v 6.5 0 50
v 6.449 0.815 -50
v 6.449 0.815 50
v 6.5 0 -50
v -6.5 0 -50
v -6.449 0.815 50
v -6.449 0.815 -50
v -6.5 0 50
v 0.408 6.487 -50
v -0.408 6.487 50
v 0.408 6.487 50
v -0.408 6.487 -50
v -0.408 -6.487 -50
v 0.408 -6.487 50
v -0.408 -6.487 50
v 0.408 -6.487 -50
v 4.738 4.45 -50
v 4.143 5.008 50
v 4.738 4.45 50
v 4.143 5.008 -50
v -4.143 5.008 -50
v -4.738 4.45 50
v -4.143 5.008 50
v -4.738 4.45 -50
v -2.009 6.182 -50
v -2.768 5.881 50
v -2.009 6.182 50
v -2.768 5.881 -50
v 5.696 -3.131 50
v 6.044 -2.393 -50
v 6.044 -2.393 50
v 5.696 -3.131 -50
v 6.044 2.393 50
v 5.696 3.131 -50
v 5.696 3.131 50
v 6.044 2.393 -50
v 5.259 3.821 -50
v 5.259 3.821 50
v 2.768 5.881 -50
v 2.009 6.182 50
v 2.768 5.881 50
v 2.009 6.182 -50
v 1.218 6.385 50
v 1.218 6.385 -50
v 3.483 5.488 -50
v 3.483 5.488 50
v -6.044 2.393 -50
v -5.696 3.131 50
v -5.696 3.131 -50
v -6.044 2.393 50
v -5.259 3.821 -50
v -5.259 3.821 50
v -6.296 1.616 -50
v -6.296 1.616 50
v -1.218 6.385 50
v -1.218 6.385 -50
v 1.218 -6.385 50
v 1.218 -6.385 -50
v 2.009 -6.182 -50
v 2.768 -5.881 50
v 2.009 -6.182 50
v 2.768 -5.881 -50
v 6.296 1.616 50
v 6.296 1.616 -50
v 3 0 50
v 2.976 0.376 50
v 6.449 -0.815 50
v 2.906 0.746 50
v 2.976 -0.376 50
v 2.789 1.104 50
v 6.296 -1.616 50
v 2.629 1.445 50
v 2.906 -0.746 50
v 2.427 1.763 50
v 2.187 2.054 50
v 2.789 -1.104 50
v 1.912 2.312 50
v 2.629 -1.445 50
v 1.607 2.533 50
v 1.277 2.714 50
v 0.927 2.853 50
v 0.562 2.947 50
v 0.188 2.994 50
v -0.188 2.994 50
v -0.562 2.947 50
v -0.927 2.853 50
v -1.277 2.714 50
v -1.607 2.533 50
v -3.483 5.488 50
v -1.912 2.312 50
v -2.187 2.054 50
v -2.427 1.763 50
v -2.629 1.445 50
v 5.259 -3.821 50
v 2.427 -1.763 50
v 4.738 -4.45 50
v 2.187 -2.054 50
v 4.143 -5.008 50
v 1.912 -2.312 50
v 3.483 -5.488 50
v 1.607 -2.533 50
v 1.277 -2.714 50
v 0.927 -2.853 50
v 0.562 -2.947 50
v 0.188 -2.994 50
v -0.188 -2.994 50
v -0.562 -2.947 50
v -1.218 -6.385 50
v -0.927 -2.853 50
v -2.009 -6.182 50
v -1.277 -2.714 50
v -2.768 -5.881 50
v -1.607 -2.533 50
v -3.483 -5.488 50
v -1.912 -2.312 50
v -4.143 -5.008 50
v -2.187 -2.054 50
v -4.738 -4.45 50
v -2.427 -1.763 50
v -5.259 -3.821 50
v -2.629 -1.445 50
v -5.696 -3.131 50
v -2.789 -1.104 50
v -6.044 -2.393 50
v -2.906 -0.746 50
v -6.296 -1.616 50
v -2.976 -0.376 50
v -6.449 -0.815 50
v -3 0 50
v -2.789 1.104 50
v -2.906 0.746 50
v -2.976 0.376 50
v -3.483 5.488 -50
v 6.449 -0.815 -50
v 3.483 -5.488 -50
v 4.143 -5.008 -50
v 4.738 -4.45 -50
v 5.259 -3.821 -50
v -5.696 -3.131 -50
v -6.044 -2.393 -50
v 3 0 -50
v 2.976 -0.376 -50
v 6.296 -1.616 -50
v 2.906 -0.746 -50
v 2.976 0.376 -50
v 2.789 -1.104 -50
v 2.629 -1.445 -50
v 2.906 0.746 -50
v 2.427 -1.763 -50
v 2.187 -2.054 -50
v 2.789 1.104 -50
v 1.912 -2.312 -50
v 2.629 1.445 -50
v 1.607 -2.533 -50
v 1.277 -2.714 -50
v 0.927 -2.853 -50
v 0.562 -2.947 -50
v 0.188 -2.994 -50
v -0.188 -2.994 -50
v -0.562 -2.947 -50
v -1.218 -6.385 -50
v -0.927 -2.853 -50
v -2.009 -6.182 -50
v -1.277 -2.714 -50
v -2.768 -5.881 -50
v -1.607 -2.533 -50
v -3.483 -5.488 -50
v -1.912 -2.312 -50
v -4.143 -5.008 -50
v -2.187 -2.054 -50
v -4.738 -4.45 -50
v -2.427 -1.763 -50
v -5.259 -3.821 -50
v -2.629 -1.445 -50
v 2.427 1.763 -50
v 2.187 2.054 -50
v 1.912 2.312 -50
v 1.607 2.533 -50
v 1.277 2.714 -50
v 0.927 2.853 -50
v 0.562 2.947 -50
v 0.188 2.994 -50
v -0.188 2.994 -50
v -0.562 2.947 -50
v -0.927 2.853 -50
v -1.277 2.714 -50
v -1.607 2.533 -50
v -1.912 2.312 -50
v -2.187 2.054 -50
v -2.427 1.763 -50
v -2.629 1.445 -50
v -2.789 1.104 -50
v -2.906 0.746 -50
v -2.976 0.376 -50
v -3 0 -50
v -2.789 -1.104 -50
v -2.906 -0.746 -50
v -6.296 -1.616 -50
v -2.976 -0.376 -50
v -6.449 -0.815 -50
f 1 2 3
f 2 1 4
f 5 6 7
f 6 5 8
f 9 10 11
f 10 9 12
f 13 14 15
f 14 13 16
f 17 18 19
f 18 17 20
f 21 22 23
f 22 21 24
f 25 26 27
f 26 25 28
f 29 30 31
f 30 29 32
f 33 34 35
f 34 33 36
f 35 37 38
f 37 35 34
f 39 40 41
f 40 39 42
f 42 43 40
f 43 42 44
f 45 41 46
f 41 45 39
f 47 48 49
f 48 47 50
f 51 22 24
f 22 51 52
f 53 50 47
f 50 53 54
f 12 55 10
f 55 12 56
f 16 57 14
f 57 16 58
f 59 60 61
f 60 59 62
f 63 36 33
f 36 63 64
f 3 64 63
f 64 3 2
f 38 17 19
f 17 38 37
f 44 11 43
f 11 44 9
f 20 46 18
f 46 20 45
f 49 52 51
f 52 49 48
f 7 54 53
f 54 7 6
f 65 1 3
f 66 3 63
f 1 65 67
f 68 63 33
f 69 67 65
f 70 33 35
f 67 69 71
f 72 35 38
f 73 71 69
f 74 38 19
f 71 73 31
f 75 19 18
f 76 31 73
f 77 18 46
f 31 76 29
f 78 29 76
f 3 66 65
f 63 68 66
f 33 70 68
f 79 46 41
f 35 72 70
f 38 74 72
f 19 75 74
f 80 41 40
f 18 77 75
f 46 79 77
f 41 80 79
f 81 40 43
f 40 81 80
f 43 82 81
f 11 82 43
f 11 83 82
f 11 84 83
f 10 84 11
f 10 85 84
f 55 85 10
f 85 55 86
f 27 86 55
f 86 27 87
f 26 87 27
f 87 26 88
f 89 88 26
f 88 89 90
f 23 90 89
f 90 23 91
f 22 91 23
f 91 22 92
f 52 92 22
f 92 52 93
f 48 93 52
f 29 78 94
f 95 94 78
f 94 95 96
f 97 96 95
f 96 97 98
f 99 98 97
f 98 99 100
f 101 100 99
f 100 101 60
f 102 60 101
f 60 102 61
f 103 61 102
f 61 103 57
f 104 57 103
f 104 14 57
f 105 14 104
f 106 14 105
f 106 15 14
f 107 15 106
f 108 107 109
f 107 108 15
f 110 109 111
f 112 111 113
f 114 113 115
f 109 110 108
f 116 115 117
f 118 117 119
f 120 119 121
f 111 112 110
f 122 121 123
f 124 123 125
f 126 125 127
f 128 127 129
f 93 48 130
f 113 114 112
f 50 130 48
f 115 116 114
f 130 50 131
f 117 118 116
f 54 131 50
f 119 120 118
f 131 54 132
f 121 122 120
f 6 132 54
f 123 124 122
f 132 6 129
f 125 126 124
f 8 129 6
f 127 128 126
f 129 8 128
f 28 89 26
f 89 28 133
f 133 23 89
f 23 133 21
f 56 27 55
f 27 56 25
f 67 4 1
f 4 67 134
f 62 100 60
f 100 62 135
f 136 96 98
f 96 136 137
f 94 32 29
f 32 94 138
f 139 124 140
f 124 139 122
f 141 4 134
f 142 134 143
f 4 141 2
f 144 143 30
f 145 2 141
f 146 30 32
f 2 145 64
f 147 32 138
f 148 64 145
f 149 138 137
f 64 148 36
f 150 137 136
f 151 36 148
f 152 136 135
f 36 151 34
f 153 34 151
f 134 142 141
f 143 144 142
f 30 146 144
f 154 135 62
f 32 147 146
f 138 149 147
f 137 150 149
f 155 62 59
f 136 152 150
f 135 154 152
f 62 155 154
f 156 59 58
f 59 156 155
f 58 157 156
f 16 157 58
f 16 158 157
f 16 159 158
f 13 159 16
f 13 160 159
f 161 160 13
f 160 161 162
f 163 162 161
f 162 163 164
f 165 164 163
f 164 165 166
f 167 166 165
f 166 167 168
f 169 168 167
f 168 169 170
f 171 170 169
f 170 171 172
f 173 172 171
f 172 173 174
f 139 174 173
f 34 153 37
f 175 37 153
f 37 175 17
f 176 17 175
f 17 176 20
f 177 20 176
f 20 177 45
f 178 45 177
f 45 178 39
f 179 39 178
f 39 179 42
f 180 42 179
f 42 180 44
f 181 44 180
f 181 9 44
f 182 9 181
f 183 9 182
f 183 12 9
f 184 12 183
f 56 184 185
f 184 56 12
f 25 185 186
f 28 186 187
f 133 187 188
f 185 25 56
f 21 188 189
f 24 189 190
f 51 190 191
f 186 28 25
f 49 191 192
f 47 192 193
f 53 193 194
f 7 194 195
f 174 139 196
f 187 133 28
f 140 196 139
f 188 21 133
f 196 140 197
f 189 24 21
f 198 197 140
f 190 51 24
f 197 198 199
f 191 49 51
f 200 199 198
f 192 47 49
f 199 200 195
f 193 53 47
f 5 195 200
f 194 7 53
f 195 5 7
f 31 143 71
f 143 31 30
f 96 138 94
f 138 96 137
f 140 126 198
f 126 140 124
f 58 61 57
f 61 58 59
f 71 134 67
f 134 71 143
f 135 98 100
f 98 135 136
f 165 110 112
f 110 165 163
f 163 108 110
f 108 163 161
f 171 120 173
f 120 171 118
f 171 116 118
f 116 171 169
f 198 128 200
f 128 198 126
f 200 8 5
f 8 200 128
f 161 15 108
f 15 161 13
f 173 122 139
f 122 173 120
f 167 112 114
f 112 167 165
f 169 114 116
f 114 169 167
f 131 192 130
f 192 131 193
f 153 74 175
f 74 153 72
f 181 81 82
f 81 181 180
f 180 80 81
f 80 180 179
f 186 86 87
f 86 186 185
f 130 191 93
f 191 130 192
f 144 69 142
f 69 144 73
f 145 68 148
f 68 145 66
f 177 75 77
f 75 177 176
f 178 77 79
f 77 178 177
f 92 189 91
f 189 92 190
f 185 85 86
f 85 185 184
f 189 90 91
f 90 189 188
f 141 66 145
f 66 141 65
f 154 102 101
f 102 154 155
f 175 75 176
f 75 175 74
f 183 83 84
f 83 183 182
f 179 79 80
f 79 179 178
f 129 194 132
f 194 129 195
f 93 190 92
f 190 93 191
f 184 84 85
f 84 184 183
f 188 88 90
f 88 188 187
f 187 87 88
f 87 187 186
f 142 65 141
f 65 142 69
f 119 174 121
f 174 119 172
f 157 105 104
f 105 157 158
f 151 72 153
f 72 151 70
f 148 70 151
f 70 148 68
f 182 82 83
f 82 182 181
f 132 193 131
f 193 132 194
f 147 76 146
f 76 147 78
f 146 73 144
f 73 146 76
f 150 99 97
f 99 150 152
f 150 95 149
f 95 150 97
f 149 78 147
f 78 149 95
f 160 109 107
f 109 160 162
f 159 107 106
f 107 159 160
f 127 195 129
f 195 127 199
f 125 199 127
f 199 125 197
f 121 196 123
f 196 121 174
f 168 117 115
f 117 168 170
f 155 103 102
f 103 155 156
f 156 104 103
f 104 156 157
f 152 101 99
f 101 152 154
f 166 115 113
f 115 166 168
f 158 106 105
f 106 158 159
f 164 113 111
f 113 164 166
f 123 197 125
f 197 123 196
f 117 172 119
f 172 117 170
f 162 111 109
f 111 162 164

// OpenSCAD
$fn = 50;


difference() {
	union() {
		translate(v = [0, 0, -50.0000000000]) {
			cylinder(h = 100, r = 6.5000000000);
		}
	}
	union() {
		translate(v = [0, 0, -100.0000000000]) {
			cylinder(h = 200, r = 3);
		}
	}
}
